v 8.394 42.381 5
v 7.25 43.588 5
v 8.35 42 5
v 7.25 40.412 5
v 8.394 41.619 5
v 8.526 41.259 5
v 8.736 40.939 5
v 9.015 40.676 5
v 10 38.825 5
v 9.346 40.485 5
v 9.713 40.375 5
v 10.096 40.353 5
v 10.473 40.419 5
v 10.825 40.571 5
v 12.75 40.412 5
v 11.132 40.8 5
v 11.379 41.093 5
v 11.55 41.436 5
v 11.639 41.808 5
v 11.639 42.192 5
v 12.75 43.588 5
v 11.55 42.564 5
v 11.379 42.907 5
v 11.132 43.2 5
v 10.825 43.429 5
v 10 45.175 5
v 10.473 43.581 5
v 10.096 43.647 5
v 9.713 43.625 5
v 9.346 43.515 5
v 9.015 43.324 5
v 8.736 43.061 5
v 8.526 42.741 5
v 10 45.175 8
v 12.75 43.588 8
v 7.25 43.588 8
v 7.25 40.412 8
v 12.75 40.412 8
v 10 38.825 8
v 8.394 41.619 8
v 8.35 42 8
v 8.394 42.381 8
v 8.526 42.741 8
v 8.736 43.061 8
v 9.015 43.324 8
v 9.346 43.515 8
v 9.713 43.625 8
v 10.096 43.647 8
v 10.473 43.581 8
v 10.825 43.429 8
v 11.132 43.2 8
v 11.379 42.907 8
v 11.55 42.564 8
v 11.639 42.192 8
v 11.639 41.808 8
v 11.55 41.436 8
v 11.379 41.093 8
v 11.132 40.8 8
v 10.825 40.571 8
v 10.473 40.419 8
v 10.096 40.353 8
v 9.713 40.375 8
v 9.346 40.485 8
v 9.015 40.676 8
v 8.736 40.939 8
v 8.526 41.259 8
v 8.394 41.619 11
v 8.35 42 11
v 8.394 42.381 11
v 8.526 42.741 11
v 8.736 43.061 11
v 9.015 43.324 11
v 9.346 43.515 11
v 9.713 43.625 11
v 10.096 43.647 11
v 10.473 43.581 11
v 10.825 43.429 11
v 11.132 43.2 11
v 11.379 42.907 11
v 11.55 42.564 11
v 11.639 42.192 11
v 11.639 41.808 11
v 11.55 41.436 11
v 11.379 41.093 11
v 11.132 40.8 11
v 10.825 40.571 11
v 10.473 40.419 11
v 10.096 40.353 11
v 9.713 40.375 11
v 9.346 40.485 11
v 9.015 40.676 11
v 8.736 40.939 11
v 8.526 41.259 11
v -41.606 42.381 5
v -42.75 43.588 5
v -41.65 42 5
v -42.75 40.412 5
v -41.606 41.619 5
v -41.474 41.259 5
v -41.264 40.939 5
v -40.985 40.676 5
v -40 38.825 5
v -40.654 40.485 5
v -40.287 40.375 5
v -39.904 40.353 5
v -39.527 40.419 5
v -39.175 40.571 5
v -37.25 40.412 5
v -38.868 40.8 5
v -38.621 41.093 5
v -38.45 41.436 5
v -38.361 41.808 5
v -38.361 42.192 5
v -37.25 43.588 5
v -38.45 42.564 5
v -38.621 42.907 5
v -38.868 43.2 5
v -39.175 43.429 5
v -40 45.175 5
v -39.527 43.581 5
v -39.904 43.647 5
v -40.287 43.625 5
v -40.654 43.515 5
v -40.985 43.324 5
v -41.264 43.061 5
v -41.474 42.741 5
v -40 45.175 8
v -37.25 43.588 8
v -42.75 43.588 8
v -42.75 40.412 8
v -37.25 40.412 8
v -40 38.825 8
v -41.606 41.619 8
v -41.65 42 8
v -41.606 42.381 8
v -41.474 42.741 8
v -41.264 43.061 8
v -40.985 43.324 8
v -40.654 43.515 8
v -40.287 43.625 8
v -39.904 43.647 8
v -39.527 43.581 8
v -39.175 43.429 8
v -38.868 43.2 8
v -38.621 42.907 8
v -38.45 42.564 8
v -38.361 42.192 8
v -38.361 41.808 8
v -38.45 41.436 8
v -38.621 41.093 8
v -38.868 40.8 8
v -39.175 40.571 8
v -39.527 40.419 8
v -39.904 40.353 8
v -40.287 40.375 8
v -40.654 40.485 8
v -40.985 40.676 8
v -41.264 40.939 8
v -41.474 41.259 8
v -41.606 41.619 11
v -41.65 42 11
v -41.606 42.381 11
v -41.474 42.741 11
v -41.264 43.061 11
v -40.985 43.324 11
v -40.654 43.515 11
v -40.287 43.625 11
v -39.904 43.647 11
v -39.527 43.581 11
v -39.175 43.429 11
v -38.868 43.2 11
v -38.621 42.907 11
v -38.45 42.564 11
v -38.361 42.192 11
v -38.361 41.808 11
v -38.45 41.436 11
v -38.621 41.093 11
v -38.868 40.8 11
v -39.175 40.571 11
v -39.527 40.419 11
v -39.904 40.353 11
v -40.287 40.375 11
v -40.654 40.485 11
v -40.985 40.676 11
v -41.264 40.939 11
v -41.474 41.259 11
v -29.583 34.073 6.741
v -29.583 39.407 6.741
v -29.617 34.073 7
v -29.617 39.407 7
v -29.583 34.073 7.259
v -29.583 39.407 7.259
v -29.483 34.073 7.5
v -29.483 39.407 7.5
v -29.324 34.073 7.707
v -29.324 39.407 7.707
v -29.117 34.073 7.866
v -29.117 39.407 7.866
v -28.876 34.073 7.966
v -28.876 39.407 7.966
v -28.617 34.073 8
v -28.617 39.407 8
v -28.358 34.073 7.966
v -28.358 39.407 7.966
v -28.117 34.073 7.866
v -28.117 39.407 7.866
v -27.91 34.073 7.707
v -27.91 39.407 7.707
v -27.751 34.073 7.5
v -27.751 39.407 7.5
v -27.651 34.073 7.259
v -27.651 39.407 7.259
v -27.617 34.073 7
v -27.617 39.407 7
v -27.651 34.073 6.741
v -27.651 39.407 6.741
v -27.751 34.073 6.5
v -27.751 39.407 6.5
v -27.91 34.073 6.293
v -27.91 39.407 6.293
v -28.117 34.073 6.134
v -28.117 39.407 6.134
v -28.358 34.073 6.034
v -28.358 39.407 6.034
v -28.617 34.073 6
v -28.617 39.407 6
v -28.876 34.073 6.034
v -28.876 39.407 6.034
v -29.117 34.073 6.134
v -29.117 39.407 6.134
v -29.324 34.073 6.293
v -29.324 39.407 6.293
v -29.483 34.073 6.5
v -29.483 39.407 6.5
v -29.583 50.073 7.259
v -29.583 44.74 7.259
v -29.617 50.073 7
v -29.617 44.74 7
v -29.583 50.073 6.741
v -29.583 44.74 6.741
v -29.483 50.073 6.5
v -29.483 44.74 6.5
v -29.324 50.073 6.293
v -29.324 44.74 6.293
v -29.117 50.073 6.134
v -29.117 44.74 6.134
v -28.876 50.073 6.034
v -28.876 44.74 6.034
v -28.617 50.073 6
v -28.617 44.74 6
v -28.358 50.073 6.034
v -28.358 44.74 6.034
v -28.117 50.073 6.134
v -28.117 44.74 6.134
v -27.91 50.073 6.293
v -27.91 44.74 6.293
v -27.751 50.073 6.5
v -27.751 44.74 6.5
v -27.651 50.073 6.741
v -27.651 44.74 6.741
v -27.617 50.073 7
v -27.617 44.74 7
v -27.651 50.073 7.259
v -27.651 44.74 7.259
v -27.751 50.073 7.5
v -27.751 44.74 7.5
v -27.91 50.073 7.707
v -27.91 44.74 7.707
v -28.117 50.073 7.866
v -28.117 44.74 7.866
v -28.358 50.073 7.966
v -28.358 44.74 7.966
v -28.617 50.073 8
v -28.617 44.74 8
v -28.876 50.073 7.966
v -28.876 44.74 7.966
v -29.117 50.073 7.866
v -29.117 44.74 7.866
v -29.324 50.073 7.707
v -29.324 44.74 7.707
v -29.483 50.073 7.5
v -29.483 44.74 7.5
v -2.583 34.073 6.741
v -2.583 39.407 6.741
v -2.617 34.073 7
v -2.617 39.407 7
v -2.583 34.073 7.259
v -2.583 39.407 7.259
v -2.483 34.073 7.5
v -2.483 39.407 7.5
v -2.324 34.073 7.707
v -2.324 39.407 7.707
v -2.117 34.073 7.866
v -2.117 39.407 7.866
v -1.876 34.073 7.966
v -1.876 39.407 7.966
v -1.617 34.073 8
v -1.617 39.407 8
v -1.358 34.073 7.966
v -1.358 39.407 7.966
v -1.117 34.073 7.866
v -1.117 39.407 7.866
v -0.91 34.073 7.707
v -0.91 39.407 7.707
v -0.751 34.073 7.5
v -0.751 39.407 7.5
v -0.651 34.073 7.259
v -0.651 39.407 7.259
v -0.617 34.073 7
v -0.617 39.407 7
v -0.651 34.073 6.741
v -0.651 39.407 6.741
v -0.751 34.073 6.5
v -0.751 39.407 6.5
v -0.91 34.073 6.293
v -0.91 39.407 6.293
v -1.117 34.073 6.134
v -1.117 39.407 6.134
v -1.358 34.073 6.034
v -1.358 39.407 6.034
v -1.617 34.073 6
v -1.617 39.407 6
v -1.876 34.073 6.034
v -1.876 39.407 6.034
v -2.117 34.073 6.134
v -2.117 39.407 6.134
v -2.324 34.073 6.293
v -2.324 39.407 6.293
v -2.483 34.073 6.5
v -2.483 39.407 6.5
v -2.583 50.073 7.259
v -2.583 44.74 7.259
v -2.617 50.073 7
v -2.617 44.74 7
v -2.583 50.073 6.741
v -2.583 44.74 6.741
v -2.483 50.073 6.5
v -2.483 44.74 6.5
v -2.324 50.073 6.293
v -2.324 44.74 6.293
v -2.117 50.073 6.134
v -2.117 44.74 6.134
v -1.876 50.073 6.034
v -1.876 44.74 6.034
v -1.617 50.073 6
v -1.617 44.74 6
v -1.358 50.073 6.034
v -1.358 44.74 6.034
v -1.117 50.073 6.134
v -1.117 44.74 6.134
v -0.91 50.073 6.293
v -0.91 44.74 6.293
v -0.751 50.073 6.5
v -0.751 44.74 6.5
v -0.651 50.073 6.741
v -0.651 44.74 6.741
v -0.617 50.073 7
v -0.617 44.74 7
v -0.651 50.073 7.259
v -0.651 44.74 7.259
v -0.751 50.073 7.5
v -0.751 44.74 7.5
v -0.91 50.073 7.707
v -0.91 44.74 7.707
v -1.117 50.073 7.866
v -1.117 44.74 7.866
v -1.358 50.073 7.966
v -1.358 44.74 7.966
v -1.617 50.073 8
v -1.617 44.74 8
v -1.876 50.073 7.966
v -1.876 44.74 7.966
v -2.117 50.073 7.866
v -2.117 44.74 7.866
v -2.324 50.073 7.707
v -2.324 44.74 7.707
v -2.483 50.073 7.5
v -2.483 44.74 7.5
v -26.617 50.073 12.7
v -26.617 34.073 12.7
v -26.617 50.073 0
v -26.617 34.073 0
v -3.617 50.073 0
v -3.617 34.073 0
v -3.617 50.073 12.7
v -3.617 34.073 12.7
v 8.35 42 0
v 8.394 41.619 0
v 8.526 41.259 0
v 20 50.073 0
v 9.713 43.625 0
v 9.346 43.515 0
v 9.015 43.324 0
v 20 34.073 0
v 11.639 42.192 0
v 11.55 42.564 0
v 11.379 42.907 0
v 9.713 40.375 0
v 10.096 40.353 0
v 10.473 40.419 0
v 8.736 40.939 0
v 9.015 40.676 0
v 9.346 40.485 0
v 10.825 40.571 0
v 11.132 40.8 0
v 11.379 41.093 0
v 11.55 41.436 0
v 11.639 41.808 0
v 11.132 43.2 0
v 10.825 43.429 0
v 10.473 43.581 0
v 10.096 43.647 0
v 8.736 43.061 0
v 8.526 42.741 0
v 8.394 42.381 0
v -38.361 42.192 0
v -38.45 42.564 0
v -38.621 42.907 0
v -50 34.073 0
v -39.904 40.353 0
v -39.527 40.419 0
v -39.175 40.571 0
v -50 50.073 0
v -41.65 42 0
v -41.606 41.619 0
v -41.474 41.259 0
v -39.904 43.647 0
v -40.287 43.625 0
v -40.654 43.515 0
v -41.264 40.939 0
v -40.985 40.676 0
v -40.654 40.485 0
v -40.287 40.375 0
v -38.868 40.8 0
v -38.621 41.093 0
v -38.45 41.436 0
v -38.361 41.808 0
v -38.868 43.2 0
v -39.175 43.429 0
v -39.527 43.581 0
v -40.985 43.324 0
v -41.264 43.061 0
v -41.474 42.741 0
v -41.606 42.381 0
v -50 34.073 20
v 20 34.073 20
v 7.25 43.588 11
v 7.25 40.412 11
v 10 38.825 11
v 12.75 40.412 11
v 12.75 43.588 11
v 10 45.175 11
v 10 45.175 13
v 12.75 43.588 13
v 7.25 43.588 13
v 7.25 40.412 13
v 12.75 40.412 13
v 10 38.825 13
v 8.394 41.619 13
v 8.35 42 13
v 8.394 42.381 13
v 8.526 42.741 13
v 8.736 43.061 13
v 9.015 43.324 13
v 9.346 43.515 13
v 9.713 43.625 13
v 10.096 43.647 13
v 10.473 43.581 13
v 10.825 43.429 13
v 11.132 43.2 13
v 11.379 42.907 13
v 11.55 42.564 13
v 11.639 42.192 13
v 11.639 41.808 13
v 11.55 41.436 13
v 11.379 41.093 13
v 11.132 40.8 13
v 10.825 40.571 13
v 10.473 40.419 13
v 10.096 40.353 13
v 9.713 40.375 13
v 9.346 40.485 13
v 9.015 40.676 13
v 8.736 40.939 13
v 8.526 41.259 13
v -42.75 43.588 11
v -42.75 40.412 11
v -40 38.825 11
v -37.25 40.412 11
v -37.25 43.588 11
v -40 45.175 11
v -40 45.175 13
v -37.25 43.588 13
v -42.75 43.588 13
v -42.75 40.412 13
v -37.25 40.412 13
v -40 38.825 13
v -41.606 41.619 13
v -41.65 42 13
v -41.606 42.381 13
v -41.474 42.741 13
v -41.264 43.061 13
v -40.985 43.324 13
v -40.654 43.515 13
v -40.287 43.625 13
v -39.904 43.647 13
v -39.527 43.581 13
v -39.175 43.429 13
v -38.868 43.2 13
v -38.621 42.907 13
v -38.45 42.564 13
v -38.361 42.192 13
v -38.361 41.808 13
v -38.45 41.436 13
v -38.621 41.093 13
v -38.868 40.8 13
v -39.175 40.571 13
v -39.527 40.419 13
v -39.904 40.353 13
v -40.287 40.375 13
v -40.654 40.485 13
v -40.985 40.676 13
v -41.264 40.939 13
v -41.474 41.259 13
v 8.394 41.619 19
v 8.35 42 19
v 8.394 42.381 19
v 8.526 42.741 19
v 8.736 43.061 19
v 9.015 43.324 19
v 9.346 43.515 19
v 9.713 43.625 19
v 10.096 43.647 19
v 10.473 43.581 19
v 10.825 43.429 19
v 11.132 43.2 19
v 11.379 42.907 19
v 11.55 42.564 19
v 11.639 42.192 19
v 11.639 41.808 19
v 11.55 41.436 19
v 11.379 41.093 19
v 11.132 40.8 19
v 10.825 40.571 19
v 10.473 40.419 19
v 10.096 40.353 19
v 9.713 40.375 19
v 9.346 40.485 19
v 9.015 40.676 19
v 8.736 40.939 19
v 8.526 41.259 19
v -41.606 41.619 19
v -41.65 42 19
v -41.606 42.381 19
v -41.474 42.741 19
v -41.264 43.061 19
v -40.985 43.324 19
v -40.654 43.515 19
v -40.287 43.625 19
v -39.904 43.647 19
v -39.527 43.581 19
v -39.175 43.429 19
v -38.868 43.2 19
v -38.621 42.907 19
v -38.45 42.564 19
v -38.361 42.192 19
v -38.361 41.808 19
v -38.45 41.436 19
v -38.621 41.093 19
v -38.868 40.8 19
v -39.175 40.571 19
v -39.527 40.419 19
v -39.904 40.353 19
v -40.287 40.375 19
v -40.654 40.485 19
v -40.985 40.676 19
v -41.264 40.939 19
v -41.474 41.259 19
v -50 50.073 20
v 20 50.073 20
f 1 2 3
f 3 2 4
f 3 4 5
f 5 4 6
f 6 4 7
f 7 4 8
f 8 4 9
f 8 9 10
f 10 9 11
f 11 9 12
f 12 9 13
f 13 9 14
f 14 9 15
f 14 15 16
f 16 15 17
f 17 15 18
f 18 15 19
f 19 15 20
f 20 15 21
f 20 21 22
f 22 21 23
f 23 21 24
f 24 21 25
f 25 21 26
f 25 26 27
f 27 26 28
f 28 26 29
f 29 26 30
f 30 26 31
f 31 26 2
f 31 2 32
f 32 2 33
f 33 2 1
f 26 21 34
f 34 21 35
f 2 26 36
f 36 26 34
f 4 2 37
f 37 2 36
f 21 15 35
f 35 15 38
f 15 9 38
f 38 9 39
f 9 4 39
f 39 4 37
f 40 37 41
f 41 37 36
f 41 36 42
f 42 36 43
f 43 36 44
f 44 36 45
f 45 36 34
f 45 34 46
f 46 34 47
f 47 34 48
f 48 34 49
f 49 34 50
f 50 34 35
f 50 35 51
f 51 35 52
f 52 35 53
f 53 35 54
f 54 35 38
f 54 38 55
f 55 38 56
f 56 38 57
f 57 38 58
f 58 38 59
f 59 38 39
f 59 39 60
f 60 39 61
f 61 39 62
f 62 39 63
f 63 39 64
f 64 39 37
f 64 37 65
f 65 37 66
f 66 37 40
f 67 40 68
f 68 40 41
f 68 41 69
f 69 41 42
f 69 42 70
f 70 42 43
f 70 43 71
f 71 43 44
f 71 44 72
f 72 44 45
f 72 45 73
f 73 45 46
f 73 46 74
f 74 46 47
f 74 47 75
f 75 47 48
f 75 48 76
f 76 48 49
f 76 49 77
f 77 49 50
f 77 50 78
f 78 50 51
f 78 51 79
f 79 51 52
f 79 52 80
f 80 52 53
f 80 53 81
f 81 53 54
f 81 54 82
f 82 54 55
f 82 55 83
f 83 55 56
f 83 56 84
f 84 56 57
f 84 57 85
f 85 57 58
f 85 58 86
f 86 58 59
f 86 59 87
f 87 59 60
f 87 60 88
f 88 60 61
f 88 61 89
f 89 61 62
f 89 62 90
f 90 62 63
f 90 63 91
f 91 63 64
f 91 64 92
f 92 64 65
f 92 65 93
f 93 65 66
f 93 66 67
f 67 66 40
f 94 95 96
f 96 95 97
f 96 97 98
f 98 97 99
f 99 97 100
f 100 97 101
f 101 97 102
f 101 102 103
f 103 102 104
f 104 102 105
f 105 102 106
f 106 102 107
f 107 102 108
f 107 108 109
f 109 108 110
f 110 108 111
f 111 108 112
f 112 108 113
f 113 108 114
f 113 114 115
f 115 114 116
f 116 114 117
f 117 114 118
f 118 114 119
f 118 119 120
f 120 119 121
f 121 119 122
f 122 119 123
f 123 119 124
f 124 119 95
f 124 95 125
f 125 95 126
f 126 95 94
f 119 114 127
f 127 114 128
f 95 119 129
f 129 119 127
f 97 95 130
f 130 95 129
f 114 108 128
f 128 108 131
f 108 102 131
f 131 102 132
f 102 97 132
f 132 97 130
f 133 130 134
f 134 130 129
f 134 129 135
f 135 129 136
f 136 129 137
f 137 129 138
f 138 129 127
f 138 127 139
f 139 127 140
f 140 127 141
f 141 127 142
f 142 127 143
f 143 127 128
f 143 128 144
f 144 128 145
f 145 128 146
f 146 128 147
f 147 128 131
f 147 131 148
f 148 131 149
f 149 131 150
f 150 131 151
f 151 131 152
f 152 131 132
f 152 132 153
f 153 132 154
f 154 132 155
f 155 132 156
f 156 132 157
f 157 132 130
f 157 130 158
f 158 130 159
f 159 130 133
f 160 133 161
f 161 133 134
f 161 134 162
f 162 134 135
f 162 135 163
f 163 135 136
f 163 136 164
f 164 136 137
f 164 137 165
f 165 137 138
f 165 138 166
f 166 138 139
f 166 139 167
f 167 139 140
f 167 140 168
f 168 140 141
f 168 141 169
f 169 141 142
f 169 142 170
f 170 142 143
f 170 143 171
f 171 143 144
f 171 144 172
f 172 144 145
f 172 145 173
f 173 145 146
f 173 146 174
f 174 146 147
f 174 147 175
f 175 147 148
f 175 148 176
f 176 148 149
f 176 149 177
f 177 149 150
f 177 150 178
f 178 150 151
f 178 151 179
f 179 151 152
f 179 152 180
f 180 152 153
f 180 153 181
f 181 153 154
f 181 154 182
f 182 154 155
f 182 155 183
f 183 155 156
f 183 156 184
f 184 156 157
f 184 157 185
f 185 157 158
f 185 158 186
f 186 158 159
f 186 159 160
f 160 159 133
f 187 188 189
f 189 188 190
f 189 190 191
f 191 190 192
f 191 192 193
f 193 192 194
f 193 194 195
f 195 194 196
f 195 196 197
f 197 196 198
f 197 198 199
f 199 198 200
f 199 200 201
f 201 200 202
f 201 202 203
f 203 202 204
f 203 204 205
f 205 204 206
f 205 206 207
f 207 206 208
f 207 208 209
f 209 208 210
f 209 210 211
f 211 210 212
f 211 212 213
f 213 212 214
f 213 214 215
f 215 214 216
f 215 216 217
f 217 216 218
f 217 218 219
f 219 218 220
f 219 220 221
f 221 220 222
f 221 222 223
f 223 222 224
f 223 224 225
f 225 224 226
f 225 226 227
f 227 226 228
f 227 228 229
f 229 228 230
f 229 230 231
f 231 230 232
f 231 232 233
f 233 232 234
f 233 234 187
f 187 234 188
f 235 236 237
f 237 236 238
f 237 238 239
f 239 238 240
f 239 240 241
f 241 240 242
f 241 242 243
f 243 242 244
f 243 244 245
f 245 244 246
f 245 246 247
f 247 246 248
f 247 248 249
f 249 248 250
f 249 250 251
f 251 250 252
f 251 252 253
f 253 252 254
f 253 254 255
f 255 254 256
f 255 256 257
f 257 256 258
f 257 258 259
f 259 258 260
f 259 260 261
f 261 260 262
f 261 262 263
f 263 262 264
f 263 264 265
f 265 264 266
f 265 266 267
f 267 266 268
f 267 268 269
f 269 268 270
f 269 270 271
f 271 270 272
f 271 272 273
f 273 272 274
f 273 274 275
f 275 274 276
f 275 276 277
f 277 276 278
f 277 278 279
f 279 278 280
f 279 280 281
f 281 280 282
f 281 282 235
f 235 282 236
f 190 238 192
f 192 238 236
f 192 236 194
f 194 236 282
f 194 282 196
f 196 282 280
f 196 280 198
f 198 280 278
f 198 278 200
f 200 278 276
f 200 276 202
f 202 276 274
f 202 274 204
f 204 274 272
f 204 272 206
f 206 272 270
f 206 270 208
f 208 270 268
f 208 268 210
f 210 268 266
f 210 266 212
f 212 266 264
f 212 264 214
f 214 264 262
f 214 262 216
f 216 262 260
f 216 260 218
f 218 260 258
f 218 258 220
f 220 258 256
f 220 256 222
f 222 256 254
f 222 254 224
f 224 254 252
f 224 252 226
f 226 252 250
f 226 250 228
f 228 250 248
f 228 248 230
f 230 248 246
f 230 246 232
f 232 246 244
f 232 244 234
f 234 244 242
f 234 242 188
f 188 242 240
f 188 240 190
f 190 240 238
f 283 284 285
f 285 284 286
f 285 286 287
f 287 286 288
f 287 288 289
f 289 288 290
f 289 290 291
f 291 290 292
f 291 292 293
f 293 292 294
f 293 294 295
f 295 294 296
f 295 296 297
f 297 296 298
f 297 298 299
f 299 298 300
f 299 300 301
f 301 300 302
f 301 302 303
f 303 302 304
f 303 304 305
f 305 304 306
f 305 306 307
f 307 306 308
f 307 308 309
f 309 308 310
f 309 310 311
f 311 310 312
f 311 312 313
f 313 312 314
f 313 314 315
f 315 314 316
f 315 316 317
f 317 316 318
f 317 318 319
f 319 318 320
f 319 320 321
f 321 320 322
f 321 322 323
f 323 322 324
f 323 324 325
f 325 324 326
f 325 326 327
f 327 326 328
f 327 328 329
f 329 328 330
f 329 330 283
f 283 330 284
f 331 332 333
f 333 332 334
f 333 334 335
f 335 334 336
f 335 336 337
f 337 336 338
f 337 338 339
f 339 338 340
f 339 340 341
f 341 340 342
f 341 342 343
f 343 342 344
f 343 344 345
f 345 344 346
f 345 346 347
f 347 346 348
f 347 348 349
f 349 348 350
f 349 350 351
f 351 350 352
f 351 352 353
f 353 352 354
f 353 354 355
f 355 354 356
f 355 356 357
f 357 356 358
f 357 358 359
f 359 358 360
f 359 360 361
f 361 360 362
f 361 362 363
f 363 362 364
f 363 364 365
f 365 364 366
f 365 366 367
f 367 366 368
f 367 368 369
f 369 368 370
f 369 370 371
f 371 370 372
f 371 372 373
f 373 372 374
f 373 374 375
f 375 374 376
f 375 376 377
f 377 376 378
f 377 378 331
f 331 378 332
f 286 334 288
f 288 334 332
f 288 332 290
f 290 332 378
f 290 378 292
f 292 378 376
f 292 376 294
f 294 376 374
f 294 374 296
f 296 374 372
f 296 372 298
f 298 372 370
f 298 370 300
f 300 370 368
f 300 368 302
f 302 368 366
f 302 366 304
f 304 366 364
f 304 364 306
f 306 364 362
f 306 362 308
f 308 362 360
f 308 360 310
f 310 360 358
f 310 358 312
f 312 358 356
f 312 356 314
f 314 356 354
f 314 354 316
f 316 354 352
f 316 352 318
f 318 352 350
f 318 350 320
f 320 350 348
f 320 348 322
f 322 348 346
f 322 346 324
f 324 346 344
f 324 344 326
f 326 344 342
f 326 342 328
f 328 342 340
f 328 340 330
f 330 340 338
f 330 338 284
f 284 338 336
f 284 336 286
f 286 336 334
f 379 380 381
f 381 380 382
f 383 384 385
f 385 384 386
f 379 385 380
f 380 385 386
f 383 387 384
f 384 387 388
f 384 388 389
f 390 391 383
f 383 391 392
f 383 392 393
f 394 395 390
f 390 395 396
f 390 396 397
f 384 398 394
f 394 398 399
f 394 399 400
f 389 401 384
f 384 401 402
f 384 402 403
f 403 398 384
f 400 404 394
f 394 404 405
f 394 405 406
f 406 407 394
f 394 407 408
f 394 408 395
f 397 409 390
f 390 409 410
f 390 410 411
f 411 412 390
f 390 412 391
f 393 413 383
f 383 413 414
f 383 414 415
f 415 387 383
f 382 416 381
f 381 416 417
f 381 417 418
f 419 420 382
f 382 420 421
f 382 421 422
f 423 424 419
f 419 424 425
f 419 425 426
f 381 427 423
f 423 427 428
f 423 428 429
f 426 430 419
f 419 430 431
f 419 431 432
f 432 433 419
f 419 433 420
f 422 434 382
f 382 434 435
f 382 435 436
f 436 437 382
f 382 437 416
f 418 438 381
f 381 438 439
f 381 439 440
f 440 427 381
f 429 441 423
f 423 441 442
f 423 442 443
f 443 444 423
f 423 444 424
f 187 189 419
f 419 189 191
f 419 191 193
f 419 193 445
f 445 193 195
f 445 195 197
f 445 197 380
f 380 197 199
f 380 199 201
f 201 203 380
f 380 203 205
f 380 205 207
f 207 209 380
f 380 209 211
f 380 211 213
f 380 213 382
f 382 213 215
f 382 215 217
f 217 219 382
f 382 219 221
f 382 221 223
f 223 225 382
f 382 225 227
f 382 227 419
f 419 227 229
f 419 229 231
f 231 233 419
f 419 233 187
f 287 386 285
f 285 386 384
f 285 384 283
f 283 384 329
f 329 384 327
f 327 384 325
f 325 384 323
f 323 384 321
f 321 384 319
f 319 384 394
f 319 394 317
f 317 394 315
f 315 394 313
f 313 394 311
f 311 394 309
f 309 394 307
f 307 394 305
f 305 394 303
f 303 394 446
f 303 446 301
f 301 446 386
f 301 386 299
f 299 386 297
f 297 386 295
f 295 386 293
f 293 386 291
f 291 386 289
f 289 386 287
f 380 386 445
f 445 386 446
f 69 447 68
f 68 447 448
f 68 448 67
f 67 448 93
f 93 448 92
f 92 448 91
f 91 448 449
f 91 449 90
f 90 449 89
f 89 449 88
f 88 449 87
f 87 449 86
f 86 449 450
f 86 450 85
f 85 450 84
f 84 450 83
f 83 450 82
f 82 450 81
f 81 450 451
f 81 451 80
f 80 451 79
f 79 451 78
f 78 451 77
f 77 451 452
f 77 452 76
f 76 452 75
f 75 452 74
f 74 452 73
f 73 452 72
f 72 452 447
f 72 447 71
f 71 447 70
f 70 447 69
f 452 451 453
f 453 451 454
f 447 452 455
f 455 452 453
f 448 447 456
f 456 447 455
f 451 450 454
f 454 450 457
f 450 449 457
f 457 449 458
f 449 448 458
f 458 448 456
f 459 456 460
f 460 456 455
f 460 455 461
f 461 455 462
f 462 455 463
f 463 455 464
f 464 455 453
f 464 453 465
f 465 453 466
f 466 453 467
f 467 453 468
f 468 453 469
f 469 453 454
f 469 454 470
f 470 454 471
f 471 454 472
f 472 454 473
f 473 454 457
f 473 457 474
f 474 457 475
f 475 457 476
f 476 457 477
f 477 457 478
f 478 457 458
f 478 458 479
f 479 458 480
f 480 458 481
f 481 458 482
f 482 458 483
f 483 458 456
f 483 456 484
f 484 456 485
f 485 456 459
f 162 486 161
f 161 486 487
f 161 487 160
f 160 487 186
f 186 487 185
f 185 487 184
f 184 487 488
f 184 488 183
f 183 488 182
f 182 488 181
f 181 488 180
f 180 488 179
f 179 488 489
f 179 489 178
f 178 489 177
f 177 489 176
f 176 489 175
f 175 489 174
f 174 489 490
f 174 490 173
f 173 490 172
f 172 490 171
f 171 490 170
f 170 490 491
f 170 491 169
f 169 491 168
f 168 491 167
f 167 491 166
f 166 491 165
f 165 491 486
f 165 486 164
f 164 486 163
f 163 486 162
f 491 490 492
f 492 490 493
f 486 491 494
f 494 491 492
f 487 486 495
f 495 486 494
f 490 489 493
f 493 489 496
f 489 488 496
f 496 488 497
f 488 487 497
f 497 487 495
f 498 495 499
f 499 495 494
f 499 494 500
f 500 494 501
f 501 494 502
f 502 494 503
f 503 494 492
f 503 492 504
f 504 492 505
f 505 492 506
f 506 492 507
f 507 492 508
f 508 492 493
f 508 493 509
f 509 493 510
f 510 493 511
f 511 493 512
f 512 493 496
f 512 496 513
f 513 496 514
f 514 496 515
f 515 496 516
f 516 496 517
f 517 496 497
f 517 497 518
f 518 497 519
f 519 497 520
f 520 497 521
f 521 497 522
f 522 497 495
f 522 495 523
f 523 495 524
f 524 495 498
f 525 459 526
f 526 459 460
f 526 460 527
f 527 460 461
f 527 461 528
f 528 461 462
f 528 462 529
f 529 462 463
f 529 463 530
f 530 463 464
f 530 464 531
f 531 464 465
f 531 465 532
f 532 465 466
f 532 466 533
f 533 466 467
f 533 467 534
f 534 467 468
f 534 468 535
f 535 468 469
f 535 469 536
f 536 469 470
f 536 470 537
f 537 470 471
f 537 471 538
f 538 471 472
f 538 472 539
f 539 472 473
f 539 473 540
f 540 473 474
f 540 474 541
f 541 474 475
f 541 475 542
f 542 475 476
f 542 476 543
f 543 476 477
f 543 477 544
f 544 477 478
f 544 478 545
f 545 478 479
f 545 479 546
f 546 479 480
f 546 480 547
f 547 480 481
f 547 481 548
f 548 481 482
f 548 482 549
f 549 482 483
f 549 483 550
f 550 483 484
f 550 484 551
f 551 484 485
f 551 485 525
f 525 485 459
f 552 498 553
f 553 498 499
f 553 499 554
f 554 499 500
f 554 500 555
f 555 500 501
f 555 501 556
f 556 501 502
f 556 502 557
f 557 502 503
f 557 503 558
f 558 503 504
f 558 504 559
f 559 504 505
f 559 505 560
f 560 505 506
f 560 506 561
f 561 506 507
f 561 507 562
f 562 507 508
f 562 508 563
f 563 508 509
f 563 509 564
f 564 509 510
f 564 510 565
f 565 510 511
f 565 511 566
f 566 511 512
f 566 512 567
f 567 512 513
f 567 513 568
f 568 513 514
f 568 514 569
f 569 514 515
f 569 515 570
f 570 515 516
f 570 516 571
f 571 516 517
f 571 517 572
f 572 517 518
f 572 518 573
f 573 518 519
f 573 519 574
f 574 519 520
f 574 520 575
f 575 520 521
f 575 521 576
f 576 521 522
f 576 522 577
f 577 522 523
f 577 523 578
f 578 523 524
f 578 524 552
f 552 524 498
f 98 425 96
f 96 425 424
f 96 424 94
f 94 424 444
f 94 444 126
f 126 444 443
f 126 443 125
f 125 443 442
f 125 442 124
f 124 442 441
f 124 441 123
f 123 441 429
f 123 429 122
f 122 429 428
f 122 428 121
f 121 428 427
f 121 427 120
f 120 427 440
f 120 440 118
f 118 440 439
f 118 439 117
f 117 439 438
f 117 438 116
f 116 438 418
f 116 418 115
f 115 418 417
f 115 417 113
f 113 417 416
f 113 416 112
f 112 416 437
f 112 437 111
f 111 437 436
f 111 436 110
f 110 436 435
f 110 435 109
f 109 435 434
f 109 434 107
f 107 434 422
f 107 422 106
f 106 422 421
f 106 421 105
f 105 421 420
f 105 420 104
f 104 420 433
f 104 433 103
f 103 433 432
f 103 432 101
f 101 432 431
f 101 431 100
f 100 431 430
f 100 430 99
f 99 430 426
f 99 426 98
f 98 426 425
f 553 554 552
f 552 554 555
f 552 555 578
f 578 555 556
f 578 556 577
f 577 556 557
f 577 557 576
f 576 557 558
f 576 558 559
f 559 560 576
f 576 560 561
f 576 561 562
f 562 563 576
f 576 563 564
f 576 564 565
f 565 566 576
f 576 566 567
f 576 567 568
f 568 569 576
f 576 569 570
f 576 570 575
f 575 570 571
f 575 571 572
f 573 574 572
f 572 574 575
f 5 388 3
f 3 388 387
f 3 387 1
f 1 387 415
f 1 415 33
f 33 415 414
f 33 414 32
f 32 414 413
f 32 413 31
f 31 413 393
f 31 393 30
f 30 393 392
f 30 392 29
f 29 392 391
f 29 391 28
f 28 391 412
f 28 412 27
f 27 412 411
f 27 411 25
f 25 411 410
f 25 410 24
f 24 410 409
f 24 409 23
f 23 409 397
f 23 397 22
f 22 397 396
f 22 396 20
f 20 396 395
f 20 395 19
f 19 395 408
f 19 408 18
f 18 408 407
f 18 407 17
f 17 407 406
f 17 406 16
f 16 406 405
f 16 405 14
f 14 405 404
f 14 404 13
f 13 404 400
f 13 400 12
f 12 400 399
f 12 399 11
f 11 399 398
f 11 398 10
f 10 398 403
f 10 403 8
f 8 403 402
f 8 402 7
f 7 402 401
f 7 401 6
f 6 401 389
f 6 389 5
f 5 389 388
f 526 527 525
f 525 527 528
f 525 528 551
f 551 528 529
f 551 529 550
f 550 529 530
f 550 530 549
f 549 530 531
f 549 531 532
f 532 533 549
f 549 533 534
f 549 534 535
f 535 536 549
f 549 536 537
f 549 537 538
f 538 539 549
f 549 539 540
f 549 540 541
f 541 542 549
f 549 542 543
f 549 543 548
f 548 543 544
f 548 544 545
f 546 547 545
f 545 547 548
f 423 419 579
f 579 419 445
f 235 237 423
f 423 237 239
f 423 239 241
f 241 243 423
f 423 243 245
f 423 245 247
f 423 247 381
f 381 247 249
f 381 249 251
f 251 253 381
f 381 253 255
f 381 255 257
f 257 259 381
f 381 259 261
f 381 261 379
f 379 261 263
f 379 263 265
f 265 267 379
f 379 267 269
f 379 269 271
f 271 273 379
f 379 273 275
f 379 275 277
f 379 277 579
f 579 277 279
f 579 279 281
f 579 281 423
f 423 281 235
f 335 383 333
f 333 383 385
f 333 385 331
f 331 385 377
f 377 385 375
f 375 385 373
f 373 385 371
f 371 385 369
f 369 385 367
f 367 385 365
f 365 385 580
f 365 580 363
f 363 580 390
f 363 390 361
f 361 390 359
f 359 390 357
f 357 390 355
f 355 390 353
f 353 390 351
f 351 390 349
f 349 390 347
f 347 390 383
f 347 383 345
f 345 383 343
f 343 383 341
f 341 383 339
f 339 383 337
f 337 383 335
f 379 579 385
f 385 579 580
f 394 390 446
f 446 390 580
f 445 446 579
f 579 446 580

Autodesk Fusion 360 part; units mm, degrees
sketch "Esquisse1" plane through (0, 0, 0) normal (0, 0, 1) x (1, 0, 0)
  line L0 (-50, 50.0735) -> (20, 50.0735)
  line L1 (20, 50.0735) -> (20, 34.0735)
  line L2 (20, 34.0735) -> (-50, 34.0735)
  line L3 (-50, 34.0735) -> (-50, 50.0735)
  circle A0 centre (-40, 42) radius 1.65
  circle A1 centre (10, 42) radius 1.65
  line L4 (7.25, 40.4123) -> (10, 38.8246)
  line L5 (10, 38.8246) -> (12.75, 40.4123)
  line L6 (12.75, 40.4123) -> (12.75, 43.5877)
  line L7 (12.75, 43.5877) -> (10, 45.1754)
  line L8 (10, 45.1754) -> (7.25, 43.5877)
  line L9 (7.25, 43.5877) -> (7.25, 40.4123)
  line L10 (-42.75, 40.4123) -> (-40, 38.8246)
  line L11 (-40, 38.8246) -> (-37.25, 40.4123)
  line L12 (-37.25, 40.4123) -> (-37.25, 43.5877)
  line L13 (-37.25, 43.5877) -> (-40, 45.1754)
  line L14 (-40, 45.1754) -> (-42.75, 43.5877)
  line L15 (-42.75, 43.5877) -> (-42.75, 40.4123)
  point P0 (10, 42)
  point P1 (-40, 42)
  dimension "d2" = 16
  dimension "d3" = 70
  dimension "d5" = 3.3
  dimension "d6" = 3.3
  dimension "d7" = 10
  dimension "d8" = 10
  dimension "d23" = 2.75
  dimension "d24" = 2.75
  dimension "d37" = 50
extrude "Extrusion1" add sketch "Esquisse1" along normal blind 20 contours L0 L1 L2 L3 | A0 | A1 | L4 L5 L6 L7 L8 L9 | L10 L11 L12 L13 L14 L15
extrude "Extrusion7" cut sketch "Esquisse1" along normal blind 19 and the other way blind 0 contours A0 | A1
extrude "Extrusion6" cut sketch "Esquisse1" along normal blind 13 and the other way blind -11 contours L4 L5 L6 L7 L8 L9 | L10 L11 L12 L13 L14 L15
sketch "Esquisse2" plane through (0, 0, 0) normal (0, 0, 1) x (1, 0, 0)
  line L0 (-26.6171, 50.3546) -> (-3.6171, 50.3546)
  line L1 (-3.6171, 50.3546) -> (-3.6171, 33.8546)
  line L2 (-3.6171, 33.8546) -> (-26.6171, 33.8546)
  line L3 (-26.6171, 33.8546) -> (-26.6171, 50.3546)
  dimension "d11" = 23
  dimension "d12" = 16.5
extrude "Extrusion2" cut sketch "Esquisse2" along normal blind 12.7
sketch "Esquisse3" plane through (0, 0, 0) normal (0, 1, 0) x (1, 0, 0)
  circle A0 centre (-28.6171, -7) radius 1
  circle A1 centre (-1.6171, -7) radius 1
  line L0 (-26.6171, 0) -> (-26.6171, -12.7)
  line L1 (-3.6171, -12.7) -> (-3.6171, 0)
  dimension "d15" = 2
  dimension "d16" = 2
  dimension "d17" = 2
  dimension "d18" = 2
extrude "Extrusion3" cut sketch "Esquisse3" along normal blind 51 and the other way blind -34
extrude "Extrusion4" cut sketch "Esquisse1" along normal blind 8 and the other way blind -5 contours L10 L11 L12 L13 L14 L15
extrude "Extrusion5" cut sketch "Esquisse1" along normal blind 8 and the other way blind -5 contours L4 L5 L6 L7 L8 L9
equation "d6 = d5"
equation "d16 = d15"
